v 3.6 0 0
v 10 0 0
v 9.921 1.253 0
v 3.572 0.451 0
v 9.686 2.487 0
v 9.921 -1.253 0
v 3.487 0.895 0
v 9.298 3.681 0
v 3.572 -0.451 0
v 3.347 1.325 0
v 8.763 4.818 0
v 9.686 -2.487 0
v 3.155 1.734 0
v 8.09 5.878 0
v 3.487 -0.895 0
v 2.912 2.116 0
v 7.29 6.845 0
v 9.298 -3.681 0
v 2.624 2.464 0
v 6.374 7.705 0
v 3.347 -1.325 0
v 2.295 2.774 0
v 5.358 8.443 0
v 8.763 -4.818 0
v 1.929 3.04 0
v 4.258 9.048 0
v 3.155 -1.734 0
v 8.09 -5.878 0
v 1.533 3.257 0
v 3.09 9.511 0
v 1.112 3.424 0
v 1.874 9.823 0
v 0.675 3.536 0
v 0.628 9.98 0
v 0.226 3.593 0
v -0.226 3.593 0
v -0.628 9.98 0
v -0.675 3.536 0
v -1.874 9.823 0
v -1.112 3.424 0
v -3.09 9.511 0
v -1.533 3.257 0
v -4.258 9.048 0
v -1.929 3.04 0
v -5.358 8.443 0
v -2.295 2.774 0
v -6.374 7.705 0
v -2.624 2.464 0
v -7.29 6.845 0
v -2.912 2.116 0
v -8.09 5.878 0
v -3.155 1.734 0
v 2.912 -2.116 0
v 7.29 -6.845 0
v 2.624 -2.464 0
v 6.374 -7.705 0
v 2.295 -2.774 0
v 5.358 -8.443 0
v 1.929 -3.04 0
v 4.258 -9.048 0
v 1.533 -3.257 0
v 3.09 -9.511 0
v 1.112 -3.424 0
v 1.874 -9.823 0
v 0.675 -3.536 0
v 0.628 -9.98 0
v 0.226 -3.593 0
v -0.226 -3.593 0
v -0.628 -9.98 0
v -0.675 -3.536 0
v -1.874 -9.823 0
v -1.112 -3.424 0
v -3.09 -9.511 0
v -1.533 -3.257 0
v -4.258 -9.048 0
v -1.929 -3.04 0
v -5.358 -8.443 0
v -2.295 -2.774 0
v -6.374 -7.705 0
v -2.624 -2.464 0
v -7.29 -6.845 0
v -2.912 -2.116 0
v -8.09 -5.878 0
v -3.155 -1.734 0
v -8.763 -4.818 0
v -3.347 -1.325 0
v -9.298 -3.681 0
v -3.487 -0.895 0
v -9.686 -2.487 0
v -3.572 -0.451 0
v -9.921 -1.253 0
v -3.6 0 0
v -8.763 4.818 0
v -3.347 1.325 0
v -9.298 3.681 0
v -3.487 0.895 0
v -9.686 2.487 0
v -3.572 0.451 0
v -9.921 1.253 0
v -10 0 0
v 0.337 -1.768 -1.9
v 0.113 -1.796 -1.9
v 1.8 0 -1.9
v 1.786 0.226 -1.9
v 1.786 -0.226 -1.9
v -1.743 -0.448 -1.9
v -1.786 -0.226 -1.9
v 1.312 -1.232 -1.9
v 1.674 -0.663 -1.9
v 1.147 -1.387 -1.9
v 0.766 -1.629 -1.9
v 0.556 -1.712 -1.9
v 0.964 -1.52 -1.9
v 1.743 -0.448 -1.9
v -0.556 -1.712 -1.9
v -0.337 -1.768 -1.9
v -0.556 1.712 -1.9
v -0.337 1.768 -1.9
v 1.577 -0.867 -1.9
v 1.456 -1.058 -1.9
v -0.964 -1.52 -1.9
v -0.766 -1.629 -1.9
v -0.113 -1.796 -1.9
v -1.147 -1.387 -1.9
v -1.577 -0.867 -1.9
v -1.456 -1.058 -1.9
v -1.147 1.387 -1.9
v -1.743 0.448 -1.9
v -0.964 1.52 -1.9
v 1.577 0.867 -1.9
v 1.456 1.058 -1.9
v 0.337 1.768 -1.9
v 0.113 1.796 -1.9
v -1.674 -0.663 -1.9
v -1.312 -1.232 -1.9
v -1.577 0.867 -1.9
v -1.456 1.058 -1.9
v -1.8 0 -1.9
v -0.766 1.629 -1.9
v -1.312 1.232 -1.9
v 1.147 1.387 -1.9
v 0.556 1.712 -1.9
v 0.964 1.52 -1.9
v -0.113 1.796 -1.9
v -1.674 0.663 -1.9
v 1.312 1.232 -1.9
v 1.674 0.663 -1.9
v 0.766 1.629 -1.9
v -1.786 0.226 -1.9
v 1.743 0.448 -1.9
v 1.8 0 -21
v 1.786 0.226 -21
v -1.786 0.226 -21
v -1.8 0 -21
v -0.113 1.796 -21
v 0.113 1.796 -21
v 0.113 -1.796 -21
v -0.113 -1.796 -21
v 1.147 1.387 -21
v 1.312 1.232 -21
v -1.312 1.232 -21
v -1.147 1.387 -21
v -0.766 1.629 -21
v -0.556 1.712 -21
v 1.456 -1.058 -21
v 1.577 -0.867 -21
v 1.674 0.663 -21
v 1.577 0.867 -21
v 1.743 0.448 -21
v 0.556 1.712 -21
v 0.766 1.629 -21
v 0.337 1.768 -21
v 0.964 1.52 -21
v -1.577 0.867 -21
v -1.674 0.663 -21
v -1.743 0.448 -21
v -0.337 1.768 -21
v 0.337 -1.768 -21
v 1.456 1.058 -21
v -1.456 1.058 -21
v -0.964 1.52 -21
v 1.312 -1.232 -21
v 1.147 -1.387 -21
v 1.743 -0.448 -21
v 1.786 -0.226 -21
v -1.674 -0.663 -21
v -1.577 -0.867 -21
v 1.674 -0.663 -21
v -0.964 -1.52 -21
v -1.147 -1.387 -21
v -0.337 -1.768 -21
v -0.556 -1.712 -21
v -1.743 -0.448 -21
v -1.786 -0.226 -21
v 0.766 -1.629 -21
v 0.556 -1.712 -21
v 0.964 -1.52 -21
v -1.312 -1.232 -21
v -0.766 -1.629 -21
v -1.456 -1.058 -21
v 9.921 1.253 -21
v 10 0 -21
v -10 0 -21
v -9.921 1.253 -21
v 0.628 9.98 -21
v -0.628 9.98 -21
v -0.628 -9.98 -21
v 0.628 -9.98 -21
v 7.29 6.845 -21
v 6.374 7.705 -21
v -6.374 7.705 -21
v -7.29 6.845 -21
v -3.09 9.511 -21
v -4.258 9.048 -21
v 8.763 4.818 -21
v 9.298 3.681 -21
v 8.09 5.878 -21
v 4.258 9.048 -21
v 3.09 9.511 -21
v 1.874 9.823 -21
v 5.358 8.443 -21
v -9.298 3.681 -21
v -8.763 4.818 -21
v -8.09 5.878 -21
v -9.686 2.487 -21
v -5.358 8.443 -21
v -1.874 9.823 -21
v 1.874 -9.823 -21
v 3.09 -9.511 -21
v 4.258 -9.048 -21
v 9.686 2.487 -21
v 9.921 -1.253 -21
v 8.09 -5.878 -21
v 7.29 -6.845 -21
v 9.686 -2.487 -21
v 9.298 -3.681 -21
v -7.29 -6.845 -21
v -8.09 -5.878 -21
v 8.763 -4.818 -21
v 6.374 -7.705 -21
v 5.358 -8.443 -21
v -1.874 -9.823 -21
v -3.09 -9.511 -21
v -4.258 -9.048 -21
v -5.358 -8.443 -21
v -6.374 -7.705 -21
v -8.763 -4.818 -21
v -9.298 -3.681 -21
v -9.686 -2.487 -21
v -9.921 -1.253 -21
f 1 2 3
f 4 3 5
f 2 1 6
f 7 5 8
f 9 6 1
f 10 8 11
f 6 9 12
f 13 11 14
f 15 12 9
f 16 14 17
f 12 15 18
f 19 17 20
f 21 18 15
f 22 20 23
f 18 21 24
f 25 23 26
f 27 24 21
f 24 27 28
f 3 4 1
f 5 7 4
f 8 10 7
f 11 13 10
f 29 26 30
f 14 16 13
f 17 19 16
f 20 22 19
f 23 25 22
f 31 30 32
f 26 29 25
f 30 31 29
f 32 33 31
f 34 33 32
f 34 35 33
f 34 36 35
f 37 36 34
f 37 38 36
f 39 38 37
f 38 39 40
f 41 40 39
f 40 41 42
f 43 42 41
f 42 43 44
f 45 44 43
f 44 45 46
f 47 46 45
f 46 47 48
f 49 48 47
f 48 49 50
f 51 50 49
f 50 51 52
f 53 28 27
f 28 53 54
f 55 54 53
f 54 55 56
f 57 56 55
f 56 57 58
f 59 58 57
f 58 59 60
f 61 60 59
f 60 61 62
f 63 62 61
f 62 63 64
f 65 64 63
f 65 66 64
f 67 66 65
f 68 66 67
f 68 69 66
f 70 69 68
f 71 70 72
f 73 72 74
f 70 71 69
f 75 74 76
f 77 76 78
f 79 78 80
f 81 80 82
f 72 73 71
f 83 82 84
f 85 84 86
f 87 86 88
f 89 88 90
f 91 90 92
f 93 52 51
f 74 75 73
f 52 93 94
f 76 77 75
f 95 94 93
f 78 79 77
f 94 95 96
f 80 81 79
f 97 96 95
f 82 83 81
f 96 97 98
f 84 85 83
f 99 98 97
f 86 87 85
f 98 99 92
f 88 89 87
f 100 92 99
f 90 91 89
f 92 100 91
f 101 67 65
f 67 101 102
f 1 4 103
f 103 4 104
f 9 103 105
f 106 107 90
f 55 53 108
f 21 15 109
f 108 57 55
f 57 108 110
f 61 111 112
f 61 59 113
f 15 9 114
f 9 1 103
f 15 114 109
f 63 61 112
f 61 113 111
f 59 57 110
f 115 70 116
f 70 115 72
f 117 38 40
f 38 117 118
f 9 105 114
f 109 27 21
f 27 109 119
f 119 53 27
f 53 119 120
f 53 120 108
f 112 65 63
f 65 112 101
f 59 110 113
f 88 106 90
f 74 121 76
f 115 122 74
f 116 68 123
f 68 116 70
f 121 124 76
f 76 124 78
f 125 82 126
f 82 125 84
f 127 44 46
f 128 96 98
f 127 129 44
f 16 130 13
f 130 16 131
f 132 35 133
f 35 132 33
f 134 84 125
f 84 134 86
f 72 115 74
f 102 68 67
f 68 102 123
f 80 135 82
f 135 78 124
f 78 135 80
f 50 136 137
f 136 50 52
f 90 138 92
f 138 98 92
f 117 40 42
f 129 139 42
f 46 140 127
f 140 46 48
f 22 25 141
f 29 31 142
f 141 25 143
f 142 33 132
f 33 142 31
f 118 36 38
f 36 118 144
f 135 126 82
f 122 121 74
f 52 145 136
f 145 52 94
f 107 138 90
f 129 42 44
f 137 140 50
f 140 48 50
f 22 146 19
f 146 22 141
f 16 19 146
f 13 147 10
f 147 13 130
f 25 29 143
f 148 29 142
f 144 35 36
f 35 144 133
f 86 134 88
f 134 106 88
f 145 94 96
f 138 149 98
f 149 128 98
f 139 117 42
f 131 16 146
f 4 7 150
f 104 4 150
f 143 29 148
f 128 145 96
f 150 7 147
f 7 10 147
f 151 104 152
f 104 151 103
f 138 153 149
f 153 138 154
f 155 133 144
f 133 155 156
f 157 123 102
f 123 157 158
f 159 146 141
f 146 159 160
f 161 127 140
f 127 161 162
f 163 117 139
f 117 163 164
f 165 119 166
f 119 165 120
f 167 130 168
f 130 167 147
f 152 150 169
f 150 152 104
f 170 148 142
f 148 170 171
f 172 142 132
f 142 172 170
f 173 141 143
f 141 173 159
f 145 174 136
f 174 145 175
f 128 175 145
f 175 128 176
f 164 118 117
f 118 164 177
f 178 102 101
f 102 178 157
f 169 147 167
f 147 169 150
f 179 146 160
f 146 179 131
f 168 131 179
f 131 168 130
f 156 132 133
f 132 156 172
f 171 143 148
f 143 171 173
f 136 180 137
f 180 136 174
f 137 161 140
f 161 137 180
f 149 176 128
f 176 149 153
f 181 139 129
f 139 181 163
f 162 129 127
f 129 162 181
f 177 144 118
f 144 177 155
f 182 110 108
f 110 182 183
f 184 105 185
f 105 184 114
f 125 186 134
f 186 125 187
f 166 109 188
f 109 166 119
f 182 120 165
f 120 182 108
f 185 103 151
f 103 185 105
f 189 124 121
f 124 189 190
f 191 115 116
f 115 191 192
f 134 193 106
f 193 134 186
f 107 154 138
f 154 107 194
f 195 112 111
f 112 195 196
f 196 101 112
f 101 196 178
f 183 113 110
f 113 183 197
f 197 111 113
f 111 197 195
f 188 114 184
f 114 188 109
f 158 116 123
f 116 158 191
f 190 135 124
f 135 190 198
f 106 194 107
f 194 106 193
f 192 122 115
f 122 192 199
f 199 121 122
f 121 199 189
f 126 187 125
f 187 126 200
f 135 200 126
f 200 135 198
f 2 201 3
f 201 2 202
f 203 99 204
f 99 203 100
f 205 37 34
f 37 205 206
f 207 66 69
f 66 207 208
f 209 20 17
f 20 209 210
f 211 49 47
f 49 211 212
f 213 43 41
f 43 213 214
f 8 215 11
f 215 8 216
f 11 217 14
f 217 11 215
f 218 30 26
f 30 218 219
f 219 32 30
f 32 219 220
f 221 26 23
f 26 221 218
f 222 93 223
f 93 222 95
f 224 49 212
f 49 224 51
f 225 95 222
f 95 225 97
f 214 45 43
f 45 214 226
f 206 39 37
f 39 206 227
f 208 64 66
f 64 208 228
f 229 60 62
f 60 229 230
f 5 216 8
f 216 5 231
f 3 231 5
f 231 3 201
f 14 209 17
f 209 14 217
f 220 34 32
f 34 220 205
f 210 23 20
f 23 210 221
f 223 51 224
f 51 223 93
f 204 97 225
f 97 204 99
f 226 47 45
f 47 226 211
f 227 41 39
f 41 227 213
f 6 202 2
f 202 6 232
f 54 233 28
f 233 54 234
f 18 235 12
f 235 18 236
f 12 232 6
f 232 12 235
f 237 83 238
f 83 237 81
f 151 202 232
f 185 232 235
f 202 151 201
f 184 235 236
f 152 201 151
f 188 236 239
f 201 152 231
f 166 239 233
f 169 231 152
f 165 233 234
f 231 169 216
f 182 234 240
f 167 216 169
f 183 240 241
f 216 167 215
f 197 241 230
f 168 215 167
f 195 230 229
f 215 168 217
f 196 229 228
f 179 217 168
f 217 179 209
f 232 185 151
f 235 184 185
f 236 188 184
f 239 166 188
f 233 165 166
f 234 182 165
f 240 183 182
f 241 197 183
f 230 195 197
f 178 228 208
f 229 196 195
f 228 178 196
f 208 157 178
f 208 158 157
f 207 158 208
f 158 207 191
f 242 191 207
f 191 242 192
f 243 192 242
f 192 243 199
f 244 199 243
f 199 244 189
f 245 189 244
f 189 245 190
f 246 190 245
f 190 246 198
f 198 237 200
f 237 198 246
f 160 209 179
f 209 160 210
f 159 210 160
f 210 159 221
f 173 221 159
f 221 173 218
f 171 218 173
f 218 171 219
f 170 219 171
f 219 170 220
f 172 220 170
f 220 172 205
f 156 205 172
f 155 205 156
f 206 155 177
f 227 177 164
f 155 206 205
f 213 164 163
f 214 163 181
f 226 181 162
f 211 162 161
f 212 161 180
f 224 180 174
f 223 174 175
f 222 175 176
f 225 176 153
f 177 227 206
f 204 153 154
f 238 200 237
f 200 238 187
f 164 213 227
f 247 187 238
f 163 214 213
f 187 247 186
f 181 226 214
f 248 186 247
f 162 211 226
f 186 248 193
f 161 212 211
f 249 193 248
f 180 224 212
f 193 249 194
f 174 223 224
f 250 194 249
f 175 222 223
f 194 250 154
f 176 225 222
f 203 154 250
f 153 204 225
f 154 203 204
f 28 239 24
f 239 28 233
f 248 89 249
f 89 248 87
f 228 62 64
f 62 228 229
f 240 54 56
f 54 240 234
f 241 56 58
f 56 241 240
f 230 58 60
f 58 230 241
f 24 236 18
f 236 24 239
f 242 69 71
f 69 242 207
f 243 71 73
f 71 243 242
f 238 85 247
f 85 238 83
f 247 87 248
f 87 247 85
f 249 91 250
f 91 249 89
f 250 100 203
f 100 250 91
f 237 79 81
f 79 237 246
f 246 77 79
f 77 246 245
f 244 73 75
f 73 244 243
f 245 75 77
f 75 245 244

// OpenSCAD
$fn = 50;


difference() {
	union() {
		translate(v = [0, 0, -21.0000000000]) {
			cylinder(h = 21, r = 10.0000000000);
		}
	}
	union() {
		translate(v = [0, 0, 0]) {
			rotate(a = [0, 0, 0]) {
				difference() {
					union() {
						translate(v = [0, 0, -24.0000000000]) {
							cylinder(h = 24, r = 1.5000000000);
						}
						translate(v = [0, 0, -1.9000000000]) {
							cylinder(h = 1.9000000000, r1 = 1.8000000000, r2 = 3.6000000000);
						}
						translate(v = [0, 0, -24.0000000000]) {
							cylinder(h = 24, r = 1.8000000000);
						}
						translate(v = [0, 0, -24.0000000000]) {
							cylinder(h = 24, r = 1.5000000000);
						}
					}
					union();
				}
			}
		}
	}
}
